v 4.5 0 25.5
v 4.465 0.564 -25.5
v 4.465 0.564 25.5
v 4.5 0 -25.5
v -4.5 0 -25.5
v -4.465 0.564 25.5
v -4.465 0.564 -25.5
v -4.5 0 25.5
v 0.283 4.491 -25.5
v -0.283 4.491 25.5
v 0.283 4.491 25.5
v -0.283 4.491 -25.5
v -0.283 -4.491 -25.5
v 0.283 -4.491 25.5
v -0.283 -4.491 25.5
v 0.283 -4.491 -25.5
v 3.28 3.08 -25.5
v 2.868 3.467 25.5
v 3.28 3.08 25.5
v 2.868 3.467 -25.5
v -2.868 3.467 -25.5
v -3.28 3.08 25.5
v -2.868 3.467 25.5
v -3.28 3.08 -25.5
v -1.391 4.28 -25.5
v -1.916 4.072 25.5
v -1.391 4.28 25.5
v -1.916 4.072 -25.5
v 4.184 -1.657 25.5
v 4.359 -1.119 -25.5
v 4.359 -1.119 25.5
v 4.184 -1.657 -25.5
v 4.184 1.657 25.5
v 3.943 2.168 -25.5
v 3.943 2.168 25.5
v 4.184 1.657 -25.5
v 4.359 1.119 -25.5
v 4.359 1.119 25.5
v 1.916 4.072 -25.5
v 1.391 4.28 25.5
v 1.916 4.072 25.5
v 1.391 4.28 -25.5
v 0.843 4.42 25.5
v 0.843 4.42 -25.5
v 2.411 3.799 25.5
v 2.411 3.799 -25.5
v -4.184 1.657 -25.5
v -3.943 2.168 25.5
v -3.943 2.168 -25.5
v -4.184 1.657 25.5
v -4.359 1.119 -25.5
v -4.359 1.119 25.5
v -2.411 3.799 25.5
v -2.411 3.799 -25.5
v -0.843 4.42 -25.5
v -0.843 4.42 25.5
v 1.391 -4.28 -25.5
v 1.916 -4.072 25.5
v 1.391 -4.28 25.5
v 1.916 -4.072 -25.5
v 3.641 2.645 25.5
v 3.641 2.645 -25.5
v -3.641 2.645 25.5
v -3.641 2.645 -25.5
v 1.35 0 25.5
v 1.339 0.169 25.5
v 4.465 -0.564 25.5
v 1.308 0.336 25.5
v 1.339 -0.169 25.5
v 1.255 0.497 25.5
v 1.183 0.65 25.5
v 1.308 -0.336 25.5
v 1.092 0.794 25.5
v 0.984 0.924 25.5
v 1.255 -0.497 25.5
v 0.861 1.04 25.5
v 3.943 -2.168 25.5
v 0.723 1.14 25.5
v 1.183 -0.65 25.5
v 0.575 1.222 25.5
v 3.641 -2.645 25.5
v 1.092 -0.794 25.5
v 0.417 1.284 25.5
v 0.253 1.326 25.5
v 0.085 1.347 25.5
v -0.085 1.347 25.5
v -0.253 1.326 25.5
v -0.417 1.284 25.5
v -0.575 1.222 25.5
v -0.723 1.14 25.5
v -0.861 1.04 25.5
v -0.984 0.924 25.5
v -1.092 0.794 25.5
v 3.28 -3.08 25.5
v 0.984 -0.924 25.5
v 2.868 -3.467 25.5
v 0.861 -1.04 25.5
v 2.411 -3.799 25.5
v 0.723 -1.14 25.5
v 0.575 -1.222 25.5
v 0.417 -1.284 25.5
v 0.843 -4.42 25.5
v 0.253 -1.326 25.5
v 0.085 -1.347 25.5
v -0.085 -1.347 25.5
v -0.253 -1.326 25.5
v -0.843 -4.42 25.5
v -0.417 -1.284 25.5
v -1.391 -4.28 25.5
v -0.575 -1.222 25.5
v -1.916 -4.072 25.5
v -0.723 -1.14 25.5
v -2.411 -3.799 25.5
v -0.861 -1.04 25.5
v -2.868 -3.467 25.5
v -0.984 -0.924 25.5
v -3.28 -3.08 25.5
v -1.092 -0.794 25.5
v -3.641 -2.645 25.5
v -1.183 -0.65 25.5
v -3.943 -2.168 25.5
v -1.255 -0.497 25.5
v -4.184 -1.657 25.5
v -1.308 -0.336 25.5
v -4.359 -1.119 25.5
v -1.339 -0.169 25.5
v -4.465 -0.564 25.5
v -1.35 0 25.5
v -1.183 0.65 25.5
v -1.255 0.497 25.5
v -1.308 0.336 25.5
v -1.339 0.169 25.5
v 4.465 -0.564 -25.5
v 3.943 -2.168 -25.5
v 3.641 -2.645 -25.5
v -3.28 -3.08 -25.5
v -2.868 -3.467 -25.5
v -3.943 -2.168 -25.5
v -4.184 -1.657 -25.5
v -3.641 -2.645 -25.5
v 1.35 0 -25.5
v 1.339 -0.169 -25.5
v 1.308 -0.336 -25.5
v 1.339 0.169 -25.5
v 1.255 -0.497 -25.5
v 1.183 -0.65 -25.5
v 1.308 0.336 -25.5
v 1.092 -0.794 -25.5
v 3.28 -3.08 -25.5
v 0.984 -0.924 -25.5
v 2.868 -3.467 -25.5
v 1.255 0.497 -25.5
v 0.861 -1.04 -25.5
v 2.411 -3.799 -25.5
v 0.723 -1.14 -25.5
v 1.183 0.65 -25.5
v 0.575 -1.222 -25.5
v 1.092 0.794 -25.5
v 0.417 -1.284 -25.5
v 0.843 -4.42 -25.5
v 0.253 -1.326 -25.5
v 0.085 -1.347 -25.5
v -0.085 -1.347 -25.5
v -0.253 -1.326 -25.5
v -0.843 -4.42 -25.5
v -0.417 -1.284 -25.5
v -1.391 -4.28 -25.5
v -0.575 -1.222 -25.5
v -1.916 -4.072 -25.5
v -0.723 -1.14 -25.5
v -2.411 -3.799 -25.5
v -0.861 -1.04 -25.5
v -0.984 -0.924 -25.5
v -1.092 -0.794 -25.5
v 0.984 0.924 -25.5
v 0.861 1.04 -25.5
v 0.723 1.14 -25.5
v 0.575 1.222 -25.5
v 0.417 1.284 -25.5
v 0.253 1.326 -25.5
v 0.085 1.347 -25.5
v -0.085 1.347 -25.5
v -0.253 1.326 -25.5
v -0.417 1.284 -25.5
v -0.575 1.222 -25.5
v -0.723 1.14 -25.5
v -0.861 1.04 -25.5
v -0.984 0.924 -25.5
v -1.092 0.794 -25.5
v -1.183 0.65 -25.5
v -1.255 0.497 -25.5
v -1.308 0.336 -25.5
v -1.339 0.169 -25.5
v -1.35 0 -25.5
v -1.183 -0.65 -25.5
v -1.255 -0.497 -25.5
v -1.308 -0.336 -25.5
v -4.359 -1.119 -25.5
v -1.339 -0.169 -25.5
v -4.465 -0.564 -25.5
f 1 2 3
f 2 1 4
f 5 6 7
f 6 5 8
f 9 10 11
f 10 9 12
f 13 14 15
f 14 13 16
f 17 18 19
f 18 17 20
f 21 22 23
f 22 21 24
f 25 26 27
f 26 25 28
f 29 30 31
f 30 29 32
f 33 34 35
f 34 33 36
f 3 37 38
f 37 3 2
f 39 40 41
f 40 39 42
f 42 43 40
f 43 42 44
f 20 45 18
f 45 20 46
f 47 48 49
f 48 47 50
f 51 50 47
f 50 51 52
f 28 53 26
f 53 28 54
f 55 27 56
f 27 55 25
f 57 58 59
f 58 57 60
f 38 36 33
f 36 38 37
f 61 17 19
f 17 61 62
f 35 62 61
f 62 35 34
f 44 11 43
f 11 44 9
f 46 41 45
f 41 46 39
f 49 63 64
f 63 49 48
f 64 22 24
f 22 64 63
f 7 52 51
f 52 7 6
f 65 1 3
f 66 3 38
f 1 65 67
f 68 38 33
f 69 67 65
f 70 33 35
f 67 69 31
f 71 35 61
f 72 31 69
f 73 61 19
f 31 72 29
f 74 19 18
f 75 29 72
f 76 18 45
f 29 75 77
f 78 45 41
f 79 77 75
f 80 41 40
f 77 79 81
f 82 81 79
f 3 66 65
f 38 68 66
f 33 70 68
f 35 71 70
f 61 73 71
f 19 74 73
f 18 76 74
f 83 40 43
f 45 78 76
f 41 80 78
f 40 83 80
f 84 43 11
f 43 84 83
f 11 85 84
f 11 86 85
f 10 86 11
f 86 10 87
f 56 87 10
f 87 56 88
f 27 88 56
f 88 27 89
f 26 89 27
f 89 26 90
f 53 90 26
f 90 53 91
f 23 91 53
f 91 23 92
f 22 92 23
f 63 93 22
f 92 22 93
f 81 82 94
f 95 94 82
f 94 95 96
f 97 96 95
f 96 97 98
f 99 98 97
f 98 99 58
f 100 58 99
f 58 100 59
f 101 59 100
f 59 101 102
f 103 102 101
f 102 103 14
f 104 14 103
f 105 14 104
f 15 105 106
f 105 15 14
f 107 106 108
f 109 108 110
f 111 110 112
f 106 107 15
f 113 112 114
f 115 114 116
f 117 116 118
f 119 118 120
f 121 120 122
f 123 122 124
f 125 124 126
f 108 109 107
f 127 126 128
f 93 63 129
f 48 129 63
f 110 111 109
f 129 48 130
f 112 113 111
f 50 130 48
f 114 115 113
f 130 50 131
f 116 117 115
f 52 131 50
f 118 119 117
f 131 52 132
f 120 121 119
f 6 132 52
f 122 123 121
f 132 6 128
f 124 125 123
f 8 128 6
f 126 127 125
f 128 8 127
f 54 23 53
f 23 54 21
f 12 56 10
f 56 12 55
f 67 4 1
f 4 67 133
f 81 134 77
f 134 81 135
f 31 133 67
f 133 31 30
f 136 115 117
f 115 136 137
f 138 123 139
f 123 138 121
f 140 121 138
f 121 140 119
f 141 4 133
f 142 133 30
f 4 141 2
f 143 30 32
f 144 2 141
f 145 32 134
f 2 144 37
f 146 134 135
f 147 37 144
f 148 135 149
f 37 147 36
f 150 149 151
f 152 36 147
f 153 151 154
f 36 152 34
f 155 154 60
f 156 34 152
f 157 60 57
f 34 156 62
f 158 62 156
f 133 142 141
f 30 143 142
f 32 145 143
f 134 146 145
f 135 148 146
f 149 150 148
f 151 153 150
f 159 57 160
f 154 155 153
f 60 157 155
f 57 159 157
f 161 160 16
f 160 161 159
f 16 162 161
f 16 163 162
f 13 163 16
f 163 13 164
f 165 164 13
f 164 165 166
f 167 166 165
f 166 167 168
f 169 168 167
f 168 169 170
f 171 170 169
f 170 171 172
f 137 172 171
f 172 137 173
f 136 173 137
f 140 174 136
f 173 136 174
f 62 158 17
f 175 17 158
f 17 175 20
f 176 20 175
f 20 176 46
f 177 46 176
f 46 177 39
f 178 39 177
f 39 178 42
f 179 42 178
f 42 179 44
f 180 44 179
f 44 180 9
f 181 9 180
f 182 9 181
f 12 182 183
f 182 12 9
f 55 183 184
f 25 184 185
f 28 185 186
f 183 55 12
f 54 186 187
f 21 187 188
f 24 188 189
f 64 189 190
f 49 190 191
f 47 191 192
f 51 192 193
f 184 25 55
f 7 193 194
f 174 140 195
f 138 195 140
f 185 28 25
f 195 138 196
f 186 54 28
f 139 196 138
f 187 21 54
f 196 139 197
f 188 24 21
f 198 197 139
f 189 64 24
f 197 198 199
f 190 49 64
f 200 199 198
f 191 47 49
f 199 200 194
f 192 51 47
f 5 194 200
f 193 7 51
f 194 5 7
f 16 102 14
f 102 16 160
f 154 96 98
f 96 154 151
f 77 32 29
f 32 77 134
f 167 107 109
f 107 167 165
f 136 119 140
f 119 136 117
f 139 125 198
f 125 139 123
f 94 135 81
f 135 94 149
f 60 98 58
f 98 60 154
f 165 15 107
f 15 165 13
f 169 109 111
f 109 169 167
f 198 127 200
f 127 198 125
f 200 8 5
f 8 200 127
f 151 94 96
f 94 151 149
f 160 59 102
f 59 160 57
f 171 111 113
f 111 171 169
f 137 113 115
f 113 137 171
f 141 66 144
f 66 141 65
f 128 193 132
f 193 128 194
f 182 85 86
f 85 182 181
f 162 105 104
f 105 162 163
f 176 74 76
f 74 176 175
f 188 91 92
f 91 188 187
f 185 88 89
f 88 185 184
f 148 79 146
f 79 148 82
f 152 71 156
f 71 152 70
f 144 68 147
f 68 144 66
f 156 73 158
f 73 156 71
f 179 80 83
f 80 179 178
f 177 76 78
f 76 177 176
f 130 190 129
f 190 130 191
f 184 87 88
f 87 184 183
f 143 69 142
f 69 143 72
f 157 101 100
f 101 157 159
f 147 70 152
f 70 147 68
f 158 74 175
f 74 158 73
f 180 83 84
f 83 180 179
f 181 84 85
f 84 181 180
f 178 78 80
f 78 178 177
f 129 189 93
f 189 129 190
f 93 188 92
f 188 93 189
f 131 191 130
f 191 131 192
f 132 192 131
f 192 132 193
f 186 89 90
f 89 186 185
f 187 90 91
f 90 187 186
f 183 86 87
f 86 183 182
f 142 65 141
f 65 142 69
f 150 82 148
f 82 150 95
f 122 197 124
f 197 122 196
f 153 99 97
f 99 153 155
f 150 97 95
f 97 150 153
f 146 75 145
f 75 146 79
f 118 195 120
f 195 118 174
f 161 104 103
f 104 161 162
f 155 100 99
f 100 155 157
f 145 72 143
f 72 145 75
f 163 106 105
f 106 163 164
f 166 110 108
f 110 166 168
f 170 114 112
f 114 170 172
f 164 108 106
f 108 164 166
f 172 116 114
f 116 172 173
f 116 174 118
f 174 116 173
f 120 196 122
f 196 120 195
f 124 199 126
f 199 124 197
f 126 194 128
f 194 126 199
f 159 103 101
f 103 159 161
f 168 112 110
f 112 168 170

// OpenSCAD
$fn = 50;


difference() {
	union() {
		translate(v = [0, 0, -25.5000000000]) {
			cylinder(h = 51, r = 4.5000000000);
		}
	}
	union() {
		translate(v = [0, 0, -100.0000000000]) {
			cylinder(h = 200, r = 1.3500000000);
		}
	}
}
